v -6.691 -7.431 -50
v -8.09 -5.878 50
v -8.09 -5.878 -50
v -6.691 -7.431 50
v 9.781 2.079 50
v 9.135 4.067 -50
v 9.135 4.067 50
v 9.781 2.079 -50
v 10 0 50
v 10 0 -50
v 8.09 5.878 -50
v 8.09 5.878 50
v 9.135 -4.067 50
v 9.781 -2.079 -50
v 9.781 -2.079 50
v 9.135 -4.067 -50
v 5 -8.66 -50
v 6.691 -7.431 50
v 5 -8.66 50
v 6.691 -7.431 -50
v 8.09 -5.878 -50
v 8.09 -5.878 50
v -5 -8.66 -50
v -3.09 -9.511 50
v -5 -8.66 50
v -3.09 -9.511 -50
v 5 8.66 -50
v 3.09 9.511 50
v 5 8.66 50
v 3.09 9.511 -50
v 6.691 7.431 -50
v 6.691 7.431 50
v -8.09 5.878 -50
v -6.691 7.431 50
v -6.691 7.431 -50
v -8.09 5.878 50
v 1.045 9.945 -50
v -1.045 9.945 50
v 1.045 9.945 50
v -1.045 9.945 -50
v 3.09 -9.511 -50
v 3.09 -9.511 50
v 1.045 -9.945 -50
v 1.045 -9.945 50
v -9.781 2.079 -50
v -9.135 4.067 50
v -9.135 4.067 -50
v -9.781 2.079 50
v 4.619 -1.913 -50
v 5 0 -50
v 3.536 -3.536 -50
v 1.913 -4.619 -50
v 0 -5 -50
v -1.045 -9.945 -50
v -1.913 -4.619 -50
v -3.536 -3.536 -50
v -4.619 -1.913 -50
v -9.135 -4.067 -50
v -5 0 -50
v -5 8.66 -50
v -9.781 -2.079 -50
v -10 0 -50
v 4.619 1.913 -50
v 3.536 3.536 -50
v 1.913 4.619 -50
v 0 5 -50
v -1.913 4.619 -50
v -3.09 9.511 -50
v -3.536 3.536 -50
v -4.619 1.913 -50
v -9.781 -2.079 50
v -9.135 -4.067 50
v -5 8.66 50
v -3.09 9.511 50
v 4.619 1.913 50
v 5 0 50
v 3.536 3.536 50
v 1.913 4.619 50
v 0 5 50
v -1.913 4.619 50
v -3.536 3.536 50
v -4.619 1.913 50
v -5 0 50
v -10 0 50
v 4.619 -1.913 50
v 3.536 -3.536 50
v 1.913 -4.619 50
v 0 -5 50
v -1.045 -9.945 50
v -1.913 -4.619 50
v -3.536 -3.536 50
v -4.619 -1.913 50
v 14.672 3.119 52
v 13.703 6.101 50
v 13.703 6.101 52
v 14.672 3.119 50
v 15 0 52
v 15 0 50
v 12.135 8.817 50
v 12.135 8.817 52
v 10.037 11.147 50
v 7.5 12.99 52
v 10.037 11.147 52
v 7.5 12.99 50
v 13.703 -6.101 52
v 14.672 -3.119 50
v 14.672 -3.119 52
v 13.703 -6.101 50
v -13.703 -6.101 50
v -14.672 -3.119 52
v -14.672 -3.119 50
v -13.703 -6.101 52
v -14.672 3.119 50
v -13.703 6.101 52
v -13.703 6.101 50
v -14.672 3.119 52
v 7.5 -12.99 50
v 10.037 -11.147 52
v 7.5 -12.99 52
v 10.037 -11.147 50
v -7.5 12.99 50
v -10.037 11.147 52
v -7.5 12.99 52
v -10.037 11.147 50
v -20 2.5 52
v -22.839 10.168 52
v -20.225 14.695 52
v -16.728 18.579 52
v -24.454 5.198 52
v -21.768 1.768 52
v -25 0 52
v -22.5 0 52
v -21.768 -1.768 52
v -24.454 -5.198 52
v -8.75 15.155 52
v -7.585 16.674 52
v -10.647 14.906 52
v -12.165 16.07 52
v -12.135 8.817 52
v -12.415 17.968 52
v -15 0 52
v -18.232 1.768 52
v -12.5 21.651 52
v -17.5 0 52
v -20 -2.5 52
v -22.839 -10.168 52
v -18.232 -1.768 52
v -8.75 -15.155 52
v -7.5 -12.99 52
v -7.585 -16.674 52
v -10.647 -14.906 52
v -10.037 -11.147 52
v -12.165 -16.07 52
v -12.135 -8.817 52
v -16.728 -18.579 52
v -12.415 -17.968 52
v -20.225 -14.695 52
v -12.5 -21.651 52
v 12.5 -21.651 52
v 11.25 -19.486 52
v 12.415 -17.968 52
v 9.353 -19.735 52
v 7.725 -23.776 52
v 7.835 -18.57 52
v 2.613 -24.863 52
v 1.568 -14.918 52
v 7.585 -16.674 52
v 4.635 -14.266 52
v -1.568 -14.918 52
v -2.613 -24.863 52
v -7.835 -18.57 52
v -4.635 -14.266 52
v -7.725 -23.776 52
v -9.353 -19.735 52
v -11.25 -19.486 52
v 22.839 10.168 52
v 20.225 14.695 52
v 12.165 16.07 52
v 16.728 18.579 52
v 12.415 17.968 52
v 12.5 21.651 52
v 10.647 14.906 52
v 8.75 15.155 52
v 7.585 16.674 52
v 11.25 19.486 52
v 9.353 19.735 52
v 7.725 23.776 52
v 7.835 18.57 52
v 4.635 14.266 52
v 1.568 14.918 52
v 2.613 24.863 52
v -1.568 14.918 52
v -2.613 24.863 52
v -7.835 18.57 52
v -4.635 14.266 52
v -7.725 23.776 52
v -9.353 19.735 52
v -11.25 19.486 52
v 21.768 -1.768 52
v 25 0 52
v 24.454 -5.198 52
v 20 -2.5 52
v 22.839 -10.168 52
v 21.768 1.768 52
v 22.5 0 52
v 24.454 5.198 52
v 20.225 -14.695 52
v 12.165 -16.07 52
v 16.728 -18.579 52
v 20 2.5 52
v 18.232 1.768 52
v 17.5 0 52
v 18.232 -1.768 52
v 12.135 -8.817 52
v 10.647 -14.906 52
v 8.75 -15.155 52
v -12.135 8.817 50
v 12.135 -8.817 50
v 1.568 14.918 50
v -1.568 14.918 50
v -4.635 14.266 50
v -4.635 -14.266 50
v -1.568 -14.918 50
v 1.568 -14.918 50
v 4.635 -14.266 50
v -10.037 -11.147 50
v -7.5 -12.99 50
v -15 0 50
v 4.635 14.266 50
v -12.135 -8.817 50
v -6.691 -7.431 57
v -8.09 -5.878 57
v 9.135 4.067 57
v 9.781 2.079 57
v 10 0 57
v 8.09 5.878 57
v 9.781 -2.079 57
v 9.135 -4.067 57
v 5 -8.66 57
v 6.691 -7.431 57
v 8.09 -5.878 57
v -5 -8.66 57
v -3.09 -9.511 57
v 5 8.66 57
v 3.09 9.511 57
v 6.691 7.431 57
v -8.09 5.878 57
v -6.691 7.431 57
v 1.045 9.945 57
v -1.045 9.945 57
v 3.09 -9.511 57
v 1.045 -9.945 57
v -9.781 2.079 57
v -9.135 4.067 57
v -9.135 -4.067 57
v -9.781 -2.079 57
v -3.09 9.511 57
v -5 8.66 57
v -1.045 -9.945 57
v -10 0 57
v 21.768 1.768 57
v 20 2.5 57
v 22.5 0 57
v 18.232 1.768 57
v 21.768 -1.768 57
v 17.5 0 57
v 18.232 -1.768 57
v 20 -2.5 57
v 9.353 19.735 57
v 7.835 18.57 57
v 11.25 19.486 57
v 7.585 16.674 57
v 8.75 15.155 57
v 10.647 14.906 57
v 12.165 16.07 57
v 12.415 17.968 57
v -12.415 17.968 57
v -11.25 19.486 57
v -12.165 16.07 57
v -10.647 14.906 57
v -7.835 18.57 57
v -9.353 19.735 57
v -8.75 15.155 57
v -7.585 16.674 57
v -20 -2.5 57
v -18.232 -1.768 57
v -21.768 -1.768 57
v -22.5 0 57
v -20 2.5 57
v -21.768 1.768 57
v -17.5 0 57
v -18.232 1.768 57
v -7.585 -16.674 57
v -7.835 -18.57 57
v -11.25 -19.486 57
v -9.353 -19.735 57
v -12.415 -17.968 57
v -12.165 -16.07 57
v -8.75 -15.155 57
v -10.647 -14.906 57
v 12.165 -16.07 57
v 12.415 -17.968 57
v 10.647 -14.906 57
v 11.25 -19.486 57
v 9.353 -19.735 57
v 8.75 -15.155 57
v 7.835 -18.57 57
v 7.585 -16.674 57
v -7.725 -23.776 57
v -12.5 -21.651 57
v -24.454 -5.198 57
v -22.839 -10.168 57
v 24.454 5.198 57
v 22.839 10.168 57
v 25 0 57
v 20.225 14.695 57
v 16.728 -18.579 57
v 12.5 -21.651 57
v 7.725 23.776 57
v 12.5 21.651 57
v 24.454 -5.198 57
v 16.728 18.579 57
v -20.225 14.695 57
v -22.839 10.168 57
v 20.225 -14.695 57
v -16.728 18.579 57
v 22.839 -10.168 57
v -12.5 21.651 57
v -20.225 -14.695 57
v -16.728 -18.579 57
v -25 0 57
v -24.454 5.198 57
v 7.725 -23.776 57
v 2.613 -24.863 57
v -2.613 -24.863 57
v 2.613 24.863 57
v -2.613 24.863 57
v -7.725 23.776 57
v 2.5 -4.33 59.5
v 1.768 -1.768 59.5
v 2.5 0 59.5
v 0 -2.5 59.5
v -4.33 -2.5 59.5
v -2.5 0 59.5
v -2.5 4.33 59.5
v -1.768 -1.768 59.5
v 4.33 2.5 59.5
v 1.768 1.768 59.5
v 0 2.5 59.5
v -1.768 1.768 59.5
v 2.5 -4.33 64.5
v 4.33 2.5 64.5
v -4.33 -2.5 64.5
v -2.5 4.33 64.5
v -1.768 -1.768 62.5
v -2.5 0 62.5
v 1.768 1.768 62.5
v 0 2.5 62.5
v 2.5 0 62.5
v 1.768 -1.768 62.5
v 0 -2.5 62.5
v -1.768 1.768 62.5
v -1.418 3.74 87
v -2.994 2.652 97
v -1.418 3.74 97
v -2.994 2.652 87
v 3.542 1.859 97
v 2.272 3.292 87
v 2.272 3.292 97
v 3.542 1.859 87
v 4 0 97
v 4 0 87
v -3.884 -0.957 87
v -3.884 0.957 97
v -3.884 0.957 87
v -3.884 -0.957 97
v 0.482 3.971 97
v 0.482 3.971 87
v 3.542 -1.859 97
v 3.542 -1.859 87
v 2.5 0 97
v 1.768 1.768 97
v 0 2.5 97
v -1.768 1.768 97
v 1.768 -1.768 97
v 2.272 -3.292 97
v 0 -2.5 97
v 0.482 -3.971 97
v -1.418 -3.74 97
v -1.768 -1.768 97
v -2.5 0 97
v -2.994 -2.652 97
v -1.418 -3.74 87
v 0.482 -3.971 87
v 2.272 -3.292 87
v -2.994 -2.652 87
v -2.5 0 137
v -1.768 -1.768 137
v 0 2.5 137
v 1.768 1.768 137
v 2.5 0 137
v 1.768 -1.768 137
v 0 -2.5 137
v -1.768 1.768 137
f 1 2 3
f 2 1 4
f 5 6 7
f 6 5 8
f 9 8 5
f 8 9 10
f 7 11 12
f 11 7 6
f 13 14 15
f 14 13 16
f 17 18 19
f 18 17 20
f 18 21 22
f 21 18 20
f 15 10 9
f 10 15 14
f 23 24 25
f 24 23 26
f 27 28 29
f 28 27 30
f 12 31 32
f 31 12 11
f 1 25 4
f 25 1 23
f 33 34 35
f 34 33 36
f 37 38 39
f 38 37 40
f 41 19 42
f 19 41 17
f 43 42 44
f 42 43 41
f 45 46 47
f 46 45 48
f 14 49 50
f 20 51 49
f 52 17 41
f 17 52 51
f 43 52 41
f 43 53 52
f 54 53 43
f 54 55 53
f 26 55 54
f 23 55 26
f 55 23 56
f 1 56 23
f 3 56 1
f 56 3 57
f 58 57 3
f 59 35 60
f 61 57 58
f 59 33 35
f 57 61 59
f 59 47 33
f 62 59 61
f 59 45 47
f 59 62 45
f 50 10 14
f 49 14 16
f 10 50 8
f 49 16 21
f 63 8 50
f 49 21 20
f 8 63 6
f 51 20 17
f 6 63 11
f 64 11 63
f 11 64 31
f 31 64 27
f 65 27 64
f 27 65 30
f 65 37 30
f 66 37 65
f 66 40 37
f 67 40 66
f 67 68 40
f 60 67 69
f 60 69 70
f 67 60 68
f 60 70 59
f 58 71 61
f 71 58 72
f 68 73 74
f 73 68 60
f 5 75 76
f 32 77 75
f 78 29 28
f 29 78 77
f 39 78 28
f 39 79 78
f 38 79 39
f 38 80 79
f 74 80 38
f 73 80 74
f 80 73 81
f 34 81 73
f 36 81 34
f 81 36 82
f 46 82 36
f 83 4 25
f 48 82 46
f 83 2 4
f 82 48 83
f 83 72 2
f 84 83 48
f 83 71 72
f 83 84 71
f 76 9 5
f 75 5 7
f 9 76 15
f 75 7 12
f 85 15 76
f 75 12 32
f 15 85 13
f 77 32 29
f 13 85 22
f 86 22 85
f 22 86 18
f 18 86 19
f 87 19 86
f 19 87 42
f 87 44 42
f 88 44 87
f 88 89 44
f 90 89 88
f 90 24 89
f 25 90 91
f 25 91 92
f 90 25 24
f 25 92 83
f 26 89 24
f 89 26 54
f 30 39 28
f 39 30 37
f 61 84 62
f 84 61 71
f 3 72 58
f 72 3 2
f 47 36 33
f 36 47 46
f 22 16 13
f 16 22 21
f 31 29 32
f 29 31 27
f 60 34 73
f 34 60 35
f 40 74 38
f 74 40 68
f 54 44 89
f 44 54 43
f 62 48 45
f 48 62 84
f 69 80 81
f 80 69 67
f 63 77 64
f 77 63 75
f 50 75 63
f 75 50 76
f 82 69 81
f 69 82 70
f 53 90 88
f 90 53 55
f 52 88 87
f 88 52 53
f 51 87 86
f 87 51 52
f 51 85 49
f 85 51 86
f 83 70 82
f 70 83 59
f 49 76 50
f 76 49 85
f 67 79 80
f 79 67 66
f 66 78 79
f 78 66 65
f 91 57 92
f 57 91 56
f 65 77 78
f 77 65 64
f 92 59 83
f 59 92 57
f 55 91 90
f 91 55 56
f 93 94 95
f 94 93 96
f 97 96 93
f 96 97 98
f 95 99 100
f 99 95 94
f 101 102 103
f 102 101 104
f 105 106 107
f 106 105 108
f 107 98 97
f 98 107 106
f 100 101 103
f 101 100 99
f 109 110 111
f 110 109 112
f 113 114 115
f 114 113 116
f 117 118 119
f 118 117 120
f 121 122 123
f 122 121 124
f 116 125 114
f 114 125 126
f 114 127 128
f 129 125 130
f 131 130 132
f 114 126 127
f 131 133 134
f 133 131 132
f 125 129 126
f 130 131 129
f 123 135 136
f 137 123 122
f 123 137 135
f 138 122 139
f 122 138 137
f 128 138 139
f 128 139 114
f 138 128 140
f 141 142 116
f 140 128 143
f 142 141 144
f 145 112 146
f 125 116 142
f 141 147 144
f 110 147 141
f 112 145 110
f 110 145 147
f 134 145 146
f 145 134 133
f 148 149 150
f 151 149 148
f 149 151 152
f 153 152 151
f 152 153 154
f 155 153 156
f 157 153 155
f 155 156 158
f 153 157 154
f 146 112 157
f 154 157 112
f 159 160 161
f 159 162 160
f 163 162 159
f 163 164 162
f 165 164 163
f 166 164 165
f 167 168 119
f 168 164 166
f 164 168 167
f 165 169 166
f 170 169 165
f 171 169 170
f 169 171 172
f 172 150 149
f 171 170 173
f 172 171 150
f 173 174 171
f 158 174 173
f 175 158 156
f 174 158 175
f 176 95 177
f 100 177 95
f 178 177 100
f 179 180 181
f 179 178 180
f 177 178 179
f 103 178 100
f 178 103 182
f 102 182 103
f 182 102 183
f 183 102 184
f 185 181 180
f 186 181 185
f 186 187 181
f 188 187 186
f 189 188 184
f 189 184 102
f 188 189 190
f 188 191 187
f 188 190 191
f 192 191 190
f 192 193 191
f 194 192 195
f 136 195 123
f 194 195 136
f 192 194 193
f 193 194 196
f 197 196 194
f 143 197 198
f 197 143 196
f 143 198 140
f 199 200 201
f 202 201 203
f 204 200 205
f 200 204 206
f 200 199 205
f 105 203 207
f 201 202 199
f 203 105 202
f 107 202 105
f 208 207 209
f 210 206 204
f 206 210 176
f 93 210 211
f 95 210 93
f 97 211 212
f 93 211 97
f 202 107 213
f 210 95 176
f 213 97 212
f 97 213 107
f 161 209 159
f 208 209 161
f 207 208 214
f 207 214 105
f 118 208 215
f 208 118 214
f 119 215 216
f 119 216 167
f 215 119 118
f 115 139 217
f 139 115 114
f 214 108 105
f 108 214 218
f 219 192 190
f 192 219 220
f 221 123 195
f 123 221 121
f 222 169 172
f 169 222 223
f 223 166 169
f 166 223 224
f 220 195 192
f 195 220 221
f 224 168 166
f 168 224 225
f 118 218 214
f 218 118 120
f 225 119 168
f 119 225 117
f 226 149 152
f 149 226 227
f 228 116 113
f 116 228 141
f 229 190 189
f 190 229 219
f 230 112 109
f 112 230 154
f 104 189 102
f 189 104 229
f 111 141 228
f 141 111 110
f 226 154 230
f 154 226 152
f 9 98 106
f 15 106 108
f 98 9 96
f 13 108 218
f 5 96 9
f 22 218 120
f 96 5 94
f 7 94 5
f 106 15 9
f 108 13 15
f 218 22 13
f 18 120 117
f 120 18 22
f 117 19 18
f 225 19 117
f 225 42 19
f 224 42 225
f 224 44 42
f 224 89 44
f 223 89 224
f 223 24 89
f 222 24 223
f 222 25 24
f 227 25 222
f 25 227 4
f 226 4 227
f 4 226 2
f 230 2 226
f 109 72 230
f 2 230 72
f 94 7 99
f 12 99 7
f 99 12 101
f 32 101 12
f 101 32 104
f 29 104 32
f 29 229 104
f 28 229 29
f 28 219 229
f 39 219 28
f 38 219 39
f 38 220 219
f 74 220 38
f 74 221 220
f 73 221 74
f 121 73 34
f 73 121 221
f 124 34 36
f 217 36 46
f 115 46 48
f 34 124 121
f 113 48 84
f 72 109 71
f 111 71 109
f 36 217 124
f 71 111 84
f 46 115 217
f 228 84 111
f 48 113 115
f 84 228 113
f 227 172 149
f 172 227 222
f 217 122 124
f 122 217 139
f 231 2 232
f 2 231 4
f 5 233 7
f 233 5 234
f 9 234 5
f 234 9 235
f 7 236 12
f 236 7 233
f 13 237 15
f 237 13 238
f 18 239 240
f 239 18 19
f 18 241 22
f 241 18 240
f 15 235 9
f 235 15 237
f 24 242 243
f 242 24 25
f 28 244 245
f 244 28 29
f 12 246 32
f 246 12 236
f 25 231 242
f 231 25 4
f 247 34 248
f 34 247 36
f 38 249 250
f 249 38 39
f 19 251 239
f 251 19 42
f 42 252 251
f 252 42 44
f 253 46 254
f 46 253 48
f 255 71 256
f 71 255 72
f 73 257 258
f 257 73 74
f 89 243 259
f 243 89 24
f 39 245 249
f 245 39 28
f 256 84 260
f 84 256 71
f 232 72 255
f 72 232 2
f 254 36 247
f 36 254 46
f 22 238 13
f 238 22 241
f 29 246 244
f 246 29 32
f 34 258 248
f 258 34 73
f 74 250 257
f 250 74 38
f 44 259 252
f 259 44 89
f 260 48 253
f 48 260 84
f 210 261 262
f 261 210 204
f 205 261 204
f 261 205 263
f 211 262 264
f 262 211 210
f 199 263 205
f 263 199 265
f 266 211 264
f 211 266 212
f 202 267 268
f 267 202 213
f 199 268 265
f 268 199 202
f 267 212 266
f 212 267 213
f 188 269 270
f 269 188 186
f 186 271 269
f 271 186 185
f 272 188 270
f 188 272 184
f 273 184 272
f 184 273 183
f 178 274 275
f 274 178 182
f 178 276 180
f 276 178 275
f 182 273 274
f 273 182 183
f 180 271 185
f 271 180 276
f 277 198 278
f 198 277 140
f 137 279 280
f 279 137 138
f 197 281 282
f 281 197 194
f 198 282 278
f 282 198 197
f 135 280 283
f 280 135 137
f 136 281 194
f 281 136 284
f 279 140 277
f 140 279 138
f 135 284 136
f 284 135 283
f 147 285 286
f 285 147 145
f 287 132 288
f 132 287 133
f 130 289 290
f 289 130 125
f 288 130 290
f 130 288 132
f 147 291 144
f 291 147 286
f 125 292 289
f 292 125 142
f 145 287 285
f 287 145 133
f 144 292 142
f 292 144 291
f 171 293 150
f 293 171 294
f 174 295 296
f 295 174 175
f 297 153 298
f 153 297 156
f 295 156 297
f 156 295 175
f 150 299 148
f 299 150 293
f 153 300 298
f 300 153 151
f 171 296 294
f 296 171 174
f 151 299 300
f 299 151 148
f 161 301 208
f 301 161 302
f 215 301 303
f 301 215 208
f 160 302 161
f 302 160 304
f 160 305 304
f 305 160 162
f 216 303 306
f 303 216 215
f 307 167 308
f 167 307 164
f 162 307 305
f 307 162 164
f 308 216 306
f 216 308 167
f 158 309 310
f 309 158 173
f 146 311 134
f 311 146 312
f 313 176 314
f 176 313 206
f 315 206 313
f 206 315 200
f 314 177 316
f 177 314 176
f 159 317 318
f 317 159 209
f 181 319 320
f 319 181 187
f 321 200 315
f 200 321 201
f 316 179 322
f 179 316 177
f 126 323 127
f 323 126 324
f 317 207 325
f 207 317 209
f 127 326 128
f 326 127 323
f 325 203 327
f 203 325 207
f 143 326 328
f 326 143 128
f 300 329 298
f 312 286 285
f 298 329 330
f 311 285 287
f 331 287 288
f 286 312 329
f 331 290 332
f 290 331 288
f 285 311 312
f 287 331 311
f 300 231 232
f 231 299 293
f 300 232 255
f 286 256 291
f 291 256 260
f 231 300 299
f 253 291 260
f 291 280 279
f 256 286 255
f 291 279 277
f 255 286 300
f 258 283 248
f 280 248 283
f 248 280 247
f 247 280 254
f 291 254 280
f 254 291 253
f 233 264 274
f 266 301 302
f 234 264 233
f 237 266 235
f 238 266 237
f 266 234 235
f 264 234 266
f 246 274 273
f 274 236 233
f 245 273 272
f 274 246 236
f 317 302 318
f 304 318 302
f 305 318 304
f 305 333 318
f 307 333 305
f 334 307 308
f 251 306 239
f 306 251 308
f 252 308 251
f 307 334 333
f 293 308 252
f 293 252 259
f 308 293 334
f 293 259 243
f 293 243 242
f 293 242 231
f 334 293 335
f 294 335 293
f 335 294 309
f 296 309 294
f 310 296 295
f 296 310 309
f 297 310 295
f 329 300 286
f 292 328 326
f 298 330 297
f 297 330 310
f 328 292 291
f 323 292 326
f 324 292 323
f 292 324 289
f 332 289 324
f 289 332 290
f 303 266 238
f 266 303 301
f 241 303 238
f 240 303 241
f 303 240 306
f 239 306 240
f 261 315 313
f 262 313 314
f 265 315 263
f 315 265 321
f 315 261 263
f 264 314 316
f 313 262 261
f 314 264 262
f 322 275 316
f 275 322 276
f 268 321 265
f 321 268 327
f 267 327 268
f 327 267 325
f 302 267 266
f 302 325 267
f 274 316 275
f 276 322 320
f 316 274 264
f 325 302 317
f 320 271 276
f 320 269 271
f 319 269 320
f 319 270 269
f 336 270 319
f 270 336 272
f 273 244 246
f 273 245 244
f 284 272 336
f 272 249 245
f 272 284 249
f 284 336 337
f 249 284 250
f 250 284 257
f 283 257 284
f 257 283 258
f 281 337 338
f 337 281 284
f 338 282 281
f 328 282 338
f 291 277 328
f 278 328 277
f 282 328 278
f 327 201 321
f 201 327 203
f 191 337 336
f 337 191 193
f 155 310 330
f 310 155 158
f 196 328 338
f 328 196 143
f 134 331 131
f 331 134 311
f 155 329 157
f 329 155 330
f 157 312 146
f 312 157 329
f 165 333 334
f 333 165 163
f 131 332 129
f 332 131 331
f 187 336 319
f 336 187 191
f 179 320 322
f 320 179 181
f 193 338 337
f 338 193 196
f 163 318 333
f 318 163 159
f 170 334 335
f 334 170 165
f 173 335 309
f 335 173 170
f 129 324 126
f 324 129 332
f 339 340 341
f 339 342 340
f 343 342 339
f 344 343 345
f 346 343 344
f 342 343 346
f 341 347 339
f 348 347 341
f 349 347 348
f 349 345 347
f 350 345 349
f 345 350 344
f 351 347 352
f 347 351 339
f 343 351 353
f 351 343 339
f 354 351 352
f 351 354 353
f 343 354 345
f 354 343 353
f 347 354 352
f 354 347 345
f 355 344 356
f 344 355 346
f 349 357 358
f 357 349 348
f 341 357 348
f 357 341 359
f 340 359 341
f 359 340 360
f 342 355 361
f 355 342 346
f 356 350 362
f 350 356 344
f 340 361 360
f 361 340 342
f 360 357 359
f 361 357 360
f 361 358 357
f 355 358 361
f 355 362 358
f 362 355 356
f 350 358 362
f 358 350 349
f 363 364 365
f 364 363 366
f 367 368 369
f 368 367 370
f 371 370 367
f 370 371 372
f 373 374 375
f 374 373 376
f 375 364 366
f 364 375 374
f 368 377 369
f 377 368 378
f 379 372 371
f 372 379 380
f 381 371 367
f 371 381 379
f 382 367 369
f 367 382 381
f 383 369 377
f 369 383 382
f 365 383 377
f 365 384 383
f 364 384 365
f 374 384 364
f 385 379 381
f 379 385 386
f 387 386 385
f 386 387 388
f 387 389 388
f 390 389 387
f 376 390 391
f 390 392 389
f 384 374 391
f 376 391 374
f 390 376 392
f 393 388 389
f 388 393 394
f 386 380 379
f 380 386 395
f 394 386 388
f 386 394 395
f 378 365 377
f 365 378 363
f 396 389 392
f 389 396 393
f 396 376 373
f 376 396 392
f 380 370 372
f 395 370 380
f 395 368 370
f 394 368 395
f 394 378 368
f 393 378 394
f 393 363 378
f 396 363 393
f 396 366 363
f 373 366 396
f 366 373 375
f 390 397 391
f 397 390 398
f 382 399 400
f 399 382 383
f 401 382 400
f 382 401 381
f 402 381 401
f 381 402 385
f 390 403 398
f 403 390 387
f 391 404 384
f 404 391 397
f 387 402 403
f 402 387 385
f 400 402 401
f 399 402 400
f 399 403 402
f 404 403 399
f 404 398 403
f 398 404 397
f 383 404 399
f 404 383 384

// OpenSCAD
// Parameters for the central shaft
shaft_length = 100; // Length of the shaft
outer_diameter = 20; // Outer diameter of the shaft
inner_diameter = 10; // Inner diameter (hollow center)

// Function to create the central shaft
module central_shaft() {
    // Adjusted to have a uniform cylindrical shape
    difference() {
        // Outer cylinder
        cylinder(h = shaft_length, d = outer_diameter, center = true);
        // Inner hollow cylinder
        cylinder(h = shaft_length, d = inner_diameter, center = true);
    }
}

// Parameters for the spacer ring
spacer_thickness = 2; // Thickness of the spacer ring
spacer_outer_diameter = 30; // Outer diameter of the spacer ring
spacer_inner_diameter = 20; // Inner diameter of the spacer ring

// Function to create the spacer ring
module spacer_ring() {
    // Adjusted to be thinner and flatter
    difference() {
        // Outer cylinder
        cylinder(h = spacer_thickness, d = spacer_outer_diameter, center = true);
        // Inner hollow cylinder
        cylinder(h = spacer_thickness + 1, d = spacer_inner_diameter, center = true);
    }
}

// Parameters for the flange plate
flange_thickness = 5; // Thickness of the flange plate
flange_outer_diameter = 50; // Outer diameter of the flange plate
flange_inner_diameter = 20; // Inner diameter of the flange plate
bolt_hole_diameter = 5; // Diameter of the bolt holes
num_bolt_holes = 6; // Number of bolt holes

// Function to create the flange plate
module flange_plate() {
    // Adjusted to have more bolt holes and a larger outer diameter
    difference() {
        // Outer cylinder
        cylinder(h = flange_thickness, d = flange_outer_diameter, center = true);
        // Inner hollow cylinder
        cylinder(h = flange_thickness + 1, d = flange_inner_diameter, center = true);
        // Bolt holes
        for (i = [0:num_bolt_holes-1]) {
            rotate([0, 0, i * 360 / num_bolt_holes])
                translate([flange_outer_diameter / 2 - 5, 0, 0])
                cylinder(h = flange_thickness + 2, d = bolt_hole_diameter, center = true);
        }
    }
}

// Parameters for the nut
nut_thickness = 5; // Thickness of the nut
nut_outer_diameter = 10; // Outer diameter of the nut
nut_inner_diameter = 5; // Inner diameter of the nut

// Function to create the nut
module nut() {
    // Adjusted to have a more compact hexagonal shape
    difference() {
        // Hexagonal prism
        rotate([0, 0, 30])
            linear_extrude(height = nut_thickness)
                polygon(points = [[-nut_outer_diameter / 2, 0], [0, nut_outer_diameter / 2], [nut_outer_diameter / 2, 0], [0, -nut_outer_diameter / 2]]);
        // Inner hollow cylinder
        cylinder(h = nut_thickness + 1, d = nut_inner_diameter, center = true);
    }
}

// Parameters for the bolt
bolt_length = 50; // Length of the bolt
bolt_head_diameter = 8; // Diameter of the bolt head
bolt_thread_diameter = 5; // Diameter of the bolt thread
bolt_thread_length = 40; // Length of the bolt thread

// Function to create the bolt
module bolt() {
    // Adjusted to have a longer threaded section and a smaller flat head
    union() {
        // Bolt head
        cylinder(h = bolt_length - bolt_thread_length, d = bolt_head_diameter, center = false);
        // Bolt thread
        translate([0, 0, bolt_length - bolt_thread_length])
            cylinder(h = bolt_thread_length, d = bolt_thread_diameter, center = false);
    }
}

// Render the components
central_shaft();
translate([0, 0, shaft_length / 2 + spacer_thickness / 2]) spacer_ring();
translate([0, 0, shaft_length / 2 + spacer_thickness + flange_thickness / 2]) flange_plate();
translate([0, 0, shaft_length / 2 + spacer_thickness + flange_thickness + nut_thickness / 2]) nut();
translate([0, 0, shaft_length / 2 + spacer_thickness + flange_thickness + nut_thickness + bolt_length / 2]) bolt();
